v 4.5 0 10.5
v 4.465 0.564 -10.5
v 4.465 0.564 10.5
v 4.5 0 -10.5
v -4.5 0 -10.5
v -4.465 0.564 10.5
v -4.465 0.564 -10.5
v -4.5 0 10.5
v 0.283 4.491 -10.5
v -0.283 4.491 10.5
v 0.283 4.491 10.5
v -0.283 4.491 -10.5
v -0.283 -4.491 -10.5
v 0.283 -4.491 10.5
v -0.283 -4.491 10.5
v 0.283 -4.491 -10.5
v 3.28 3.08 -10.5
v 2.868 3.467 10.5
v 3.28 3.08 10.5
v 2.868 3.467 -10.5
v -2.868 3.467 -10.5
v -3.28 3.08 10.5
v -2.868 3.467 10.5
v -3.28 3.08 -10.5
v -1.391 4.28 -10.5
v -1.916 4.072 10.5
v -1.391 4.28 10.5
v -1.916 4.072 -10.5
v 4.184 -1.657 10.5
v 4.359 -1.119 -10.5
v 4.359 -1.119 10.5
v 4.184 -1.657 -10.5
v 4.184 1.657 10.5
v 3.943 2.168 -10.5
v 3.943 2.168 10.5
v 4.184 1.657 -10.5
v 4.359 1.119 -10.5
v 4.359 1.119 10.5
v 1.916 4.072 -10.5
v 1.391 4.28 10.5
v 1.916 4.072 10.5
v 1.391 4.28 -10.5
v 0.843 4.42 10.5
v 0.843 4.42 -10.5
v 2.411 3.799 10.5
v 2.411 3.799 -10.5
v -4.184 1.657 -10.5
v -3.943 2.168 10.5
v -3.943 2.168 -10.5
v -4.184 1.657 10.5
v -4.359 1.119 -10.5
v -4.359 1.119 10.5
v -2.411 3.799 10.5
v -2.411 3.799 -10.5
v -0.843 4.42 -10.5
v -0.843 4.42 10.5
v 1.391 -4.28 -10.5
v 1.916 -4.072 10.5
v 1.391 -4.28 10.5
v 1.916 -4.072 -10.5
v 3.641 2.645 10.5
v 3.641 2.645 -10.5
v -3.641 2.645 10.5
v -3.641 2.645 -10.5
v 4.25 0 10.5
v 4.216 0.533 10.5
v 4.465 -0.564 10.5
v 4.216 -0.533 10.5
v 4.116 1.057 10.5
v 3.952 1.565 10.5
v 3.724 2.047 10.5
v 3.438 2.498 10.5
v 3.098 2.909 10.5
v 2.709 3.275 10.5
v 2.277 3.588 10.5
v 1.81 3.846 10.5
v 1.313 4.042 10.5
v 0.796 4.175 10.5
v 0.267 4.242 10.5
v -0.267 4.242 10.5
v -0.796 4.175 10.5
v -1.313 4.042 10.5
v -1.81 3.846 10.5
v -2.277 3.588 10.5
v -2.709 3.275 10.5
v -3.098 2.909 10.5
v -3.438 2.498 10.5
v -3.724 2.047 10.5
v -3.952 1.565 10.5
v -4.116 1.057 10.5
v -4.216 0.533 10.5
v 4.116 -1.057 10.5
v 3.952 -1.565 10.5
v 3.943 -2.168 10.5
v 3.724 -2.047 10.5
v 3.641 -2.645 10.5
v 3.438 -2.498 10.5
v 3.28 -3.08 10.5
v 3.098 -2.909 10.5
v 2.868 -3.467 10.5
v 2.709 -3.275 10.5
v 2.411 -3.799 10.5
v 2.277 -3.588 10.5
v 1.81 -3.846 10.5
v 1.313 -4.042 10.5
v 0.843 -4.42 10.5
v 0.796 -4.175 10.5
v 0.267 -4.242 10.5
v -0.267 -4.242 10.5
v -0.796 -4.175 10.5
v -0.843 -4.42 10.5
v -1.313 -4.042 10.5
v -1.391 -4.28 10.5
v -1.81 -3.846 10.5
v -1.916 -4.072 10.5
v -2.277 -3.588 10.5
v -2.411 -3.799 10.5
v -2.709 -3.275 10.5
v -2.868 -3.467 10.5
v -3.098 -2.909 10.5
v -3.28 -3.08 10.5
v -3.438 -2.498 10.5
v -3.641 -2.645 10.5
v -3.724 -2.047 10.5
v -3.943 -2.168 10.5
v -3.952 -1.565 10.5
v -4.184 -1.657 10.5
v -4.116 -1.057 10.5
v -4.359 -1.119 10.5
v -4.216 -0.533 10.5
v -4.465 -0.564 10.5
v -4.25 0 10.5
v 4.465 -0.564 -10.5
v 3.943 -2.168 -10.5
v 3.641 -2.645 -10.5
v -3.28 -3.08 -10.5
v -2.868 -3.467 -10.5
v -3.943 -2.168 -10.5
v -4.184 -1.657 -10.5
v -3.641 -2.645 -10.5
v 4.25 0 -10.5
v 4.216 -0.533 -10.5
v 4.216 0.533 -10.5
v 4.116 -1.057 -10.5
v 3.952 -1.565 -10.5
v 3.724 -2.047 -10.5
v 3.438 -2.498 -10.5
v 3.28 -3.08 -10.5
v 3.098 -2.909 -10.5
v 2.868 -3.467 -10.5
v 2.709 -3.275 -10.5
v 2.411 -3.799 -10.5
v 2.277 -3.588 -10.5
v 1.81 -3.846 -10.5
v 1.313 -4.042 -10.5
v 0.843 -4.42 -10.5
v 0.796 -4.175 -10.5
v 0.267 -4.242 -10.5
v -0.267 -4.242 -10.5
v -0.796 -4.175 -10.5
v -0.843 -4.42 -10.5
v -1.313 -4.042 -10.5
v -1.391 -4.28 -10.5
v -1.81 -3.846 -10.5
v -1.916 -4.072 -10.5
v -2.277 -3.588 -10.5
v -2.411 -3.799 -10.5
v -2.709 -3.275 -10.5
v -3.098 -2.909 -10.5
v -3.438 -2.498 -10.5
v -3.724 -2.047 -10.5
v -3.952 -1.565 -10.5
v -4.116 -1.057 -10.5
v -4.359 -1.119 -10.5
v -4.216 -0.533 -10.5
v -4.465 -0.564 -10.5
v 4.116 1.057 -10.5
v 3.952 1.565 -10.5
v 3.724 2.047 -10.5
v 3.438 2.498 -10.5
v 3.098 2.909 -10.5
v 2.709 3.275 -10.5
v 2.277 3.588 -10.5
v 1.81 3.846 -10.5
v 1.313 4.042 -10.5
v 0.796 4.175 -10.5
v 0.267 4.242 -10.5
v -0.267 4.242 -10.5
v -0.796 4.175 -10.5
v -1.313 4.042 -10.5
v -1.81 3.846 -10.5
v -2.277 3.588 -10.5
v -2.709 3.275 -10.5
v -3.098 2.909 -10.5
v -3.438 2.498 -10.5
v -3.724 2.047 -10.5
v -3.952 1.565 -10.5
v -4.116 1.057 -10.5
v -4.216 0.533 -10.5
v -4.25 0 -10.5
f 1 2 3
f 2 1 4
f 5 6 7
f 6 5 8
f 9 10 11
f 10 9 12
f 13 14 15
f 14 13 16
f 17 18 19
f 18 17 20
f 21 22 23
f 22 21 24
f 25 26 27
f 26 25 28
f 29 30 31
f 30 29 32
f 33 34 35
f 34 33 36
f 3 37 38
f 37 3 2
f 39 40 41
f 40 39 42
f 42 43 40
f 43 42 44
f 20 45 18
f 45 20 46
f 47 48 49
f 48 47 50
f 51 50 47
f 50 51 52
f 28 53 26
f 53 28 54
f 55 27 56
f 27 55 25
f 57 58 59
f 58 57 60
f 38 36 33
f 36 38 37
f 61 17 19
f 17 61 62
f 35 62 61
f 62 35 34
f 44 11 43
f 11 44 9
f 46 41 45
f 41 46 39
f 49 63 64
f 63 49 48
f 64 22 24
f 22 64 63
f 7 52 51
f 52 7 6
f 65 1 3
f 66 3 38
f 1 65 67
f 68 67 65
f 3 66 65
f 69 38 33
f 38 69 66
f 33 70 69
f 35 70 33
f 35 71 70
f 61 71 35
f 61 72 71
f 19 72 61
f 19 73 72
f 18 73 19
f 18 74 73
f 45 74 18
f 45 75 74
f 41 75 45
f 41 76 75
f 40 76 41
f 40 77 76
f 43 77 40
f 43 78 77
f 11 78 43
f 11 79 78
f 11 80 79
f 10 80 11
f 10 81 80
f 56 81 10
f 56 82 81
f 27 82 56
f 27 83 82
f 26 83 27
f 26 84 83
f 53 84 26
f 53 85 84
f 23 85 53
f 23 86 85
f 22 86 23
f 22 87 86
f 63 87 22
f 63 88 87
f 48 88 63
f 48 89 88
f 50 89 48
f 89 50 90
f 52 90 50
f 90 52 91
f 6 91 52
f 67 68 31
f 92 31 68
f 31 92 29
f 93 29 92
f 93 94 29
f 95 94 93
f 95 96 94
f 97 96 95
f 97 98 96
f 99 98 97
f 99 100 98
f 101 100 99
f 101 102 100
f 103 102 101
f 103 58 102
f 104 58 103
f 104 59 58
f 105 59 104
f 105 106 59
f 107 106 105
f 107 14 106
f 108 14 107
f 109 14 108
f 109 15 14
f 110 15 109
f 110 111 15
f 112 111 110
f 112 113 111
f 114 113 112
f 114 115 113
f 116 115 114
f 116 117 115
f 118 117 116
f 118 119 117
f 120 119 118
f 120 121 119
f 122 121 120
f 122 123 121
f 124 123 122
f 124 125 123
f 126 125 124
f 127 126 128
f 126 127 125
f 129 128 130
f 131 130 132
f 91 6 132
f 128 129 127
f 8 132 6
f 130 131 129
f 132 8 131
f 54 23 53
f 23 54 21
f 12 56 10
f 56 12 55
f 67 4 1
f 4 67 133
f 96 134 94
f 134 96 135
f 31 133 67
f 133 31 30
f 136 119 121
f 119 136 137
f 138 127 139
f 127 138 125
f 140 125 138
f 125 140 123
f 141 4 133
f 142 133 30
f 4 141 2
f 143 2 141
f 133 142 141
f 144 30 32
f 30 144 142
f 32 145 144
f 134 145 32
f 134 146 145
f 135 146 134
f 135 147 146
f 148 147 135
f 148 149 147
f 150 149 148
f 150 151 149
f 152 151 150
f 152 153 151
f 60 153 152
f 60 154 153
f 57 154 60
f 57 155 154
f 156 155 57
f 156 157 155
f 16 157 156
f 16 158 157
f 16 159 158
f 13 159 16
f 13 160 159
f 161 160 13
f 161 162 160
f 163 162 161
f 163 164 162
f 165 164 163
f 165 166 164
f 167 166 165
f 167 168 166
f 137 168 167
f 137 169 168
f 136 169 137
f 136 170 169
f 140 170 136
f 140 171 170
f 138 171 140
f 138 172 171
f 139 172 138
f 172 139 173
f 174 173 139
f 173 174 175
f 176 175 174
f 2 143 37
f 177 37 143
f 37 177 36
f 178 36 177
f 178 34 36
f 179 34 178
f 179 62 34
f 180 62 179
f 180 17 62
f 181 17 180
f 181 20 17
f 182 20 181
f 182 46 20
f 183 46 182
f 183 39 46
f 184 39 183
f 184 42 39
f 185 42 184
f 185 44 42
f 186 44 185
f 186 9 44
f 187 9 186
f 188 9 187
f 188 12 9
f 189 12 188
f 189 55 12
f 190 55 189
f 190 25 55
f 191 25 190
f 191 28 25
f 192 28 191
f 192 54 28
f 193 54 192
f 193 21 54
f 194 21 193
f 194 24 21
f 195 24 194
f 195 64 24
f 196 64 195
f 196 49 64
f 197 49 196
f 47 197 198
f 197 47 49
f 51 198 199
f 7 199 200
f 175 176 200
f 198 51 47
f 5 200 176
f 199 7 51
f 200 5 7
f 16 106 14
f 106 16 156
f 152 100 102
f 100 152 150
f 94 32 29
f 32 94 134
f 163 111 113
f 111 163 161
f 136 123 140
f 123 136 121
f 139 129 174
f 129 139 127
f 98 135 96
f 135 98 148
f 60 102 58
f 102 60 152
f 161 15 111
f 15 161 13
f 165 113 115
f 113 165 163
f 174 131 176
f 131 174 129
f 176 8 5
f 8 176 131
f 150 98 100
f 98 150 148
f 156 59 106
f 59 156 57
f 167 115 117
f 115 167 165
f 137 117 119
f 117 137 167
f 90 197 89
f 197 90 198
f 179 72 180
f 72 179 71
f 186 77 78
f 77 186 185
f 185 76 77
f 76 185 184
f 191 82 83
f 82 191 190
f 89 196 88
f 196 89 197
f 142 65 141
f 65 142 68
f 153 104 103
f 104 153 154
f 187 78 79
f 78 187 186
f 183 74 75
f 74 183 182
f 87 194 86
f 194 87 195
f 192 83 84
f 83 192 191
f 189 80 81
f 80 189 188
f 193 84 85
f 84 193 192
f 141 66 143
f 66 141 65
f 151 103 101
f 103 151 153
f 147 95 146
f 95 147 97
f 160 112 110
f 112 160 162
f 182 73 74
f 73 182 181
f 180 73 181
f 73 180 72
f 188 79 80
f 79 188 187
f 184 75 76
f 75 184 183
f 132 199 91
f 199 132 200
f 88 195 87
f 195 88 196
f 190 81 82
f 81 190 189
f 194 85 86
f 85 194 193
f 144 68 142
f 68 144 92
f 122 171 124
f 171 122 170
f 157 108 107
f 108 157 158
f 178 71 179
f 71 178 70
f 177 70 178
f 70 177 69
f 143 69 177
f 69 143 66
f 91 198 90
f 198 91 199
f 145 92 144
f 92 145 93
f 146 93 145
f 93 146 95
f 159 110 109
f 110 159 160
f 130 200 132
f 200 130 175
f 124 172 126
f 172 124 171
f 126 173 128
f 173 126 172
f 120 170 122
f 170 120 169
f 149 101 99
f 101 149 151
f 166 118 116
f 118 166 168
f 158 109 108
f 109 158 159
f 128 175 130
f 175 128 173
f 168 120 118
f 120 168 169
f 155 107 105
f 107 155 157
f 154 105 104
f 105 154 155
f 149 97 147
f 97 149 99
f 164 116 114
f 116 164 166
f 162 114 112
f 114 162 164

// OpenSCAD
$fn = 50;


difference() {
	union() {
		translate(v = [0, 0, -10.5000000000]) {
			cylinder(h = 21, r = 4.5000000000);
		}
	}
	union() {
		translate(v = [0, 0, -100.0000000000]) {
			cylinder(h = 200, r = 4.2500000000);
		}
	}
}
